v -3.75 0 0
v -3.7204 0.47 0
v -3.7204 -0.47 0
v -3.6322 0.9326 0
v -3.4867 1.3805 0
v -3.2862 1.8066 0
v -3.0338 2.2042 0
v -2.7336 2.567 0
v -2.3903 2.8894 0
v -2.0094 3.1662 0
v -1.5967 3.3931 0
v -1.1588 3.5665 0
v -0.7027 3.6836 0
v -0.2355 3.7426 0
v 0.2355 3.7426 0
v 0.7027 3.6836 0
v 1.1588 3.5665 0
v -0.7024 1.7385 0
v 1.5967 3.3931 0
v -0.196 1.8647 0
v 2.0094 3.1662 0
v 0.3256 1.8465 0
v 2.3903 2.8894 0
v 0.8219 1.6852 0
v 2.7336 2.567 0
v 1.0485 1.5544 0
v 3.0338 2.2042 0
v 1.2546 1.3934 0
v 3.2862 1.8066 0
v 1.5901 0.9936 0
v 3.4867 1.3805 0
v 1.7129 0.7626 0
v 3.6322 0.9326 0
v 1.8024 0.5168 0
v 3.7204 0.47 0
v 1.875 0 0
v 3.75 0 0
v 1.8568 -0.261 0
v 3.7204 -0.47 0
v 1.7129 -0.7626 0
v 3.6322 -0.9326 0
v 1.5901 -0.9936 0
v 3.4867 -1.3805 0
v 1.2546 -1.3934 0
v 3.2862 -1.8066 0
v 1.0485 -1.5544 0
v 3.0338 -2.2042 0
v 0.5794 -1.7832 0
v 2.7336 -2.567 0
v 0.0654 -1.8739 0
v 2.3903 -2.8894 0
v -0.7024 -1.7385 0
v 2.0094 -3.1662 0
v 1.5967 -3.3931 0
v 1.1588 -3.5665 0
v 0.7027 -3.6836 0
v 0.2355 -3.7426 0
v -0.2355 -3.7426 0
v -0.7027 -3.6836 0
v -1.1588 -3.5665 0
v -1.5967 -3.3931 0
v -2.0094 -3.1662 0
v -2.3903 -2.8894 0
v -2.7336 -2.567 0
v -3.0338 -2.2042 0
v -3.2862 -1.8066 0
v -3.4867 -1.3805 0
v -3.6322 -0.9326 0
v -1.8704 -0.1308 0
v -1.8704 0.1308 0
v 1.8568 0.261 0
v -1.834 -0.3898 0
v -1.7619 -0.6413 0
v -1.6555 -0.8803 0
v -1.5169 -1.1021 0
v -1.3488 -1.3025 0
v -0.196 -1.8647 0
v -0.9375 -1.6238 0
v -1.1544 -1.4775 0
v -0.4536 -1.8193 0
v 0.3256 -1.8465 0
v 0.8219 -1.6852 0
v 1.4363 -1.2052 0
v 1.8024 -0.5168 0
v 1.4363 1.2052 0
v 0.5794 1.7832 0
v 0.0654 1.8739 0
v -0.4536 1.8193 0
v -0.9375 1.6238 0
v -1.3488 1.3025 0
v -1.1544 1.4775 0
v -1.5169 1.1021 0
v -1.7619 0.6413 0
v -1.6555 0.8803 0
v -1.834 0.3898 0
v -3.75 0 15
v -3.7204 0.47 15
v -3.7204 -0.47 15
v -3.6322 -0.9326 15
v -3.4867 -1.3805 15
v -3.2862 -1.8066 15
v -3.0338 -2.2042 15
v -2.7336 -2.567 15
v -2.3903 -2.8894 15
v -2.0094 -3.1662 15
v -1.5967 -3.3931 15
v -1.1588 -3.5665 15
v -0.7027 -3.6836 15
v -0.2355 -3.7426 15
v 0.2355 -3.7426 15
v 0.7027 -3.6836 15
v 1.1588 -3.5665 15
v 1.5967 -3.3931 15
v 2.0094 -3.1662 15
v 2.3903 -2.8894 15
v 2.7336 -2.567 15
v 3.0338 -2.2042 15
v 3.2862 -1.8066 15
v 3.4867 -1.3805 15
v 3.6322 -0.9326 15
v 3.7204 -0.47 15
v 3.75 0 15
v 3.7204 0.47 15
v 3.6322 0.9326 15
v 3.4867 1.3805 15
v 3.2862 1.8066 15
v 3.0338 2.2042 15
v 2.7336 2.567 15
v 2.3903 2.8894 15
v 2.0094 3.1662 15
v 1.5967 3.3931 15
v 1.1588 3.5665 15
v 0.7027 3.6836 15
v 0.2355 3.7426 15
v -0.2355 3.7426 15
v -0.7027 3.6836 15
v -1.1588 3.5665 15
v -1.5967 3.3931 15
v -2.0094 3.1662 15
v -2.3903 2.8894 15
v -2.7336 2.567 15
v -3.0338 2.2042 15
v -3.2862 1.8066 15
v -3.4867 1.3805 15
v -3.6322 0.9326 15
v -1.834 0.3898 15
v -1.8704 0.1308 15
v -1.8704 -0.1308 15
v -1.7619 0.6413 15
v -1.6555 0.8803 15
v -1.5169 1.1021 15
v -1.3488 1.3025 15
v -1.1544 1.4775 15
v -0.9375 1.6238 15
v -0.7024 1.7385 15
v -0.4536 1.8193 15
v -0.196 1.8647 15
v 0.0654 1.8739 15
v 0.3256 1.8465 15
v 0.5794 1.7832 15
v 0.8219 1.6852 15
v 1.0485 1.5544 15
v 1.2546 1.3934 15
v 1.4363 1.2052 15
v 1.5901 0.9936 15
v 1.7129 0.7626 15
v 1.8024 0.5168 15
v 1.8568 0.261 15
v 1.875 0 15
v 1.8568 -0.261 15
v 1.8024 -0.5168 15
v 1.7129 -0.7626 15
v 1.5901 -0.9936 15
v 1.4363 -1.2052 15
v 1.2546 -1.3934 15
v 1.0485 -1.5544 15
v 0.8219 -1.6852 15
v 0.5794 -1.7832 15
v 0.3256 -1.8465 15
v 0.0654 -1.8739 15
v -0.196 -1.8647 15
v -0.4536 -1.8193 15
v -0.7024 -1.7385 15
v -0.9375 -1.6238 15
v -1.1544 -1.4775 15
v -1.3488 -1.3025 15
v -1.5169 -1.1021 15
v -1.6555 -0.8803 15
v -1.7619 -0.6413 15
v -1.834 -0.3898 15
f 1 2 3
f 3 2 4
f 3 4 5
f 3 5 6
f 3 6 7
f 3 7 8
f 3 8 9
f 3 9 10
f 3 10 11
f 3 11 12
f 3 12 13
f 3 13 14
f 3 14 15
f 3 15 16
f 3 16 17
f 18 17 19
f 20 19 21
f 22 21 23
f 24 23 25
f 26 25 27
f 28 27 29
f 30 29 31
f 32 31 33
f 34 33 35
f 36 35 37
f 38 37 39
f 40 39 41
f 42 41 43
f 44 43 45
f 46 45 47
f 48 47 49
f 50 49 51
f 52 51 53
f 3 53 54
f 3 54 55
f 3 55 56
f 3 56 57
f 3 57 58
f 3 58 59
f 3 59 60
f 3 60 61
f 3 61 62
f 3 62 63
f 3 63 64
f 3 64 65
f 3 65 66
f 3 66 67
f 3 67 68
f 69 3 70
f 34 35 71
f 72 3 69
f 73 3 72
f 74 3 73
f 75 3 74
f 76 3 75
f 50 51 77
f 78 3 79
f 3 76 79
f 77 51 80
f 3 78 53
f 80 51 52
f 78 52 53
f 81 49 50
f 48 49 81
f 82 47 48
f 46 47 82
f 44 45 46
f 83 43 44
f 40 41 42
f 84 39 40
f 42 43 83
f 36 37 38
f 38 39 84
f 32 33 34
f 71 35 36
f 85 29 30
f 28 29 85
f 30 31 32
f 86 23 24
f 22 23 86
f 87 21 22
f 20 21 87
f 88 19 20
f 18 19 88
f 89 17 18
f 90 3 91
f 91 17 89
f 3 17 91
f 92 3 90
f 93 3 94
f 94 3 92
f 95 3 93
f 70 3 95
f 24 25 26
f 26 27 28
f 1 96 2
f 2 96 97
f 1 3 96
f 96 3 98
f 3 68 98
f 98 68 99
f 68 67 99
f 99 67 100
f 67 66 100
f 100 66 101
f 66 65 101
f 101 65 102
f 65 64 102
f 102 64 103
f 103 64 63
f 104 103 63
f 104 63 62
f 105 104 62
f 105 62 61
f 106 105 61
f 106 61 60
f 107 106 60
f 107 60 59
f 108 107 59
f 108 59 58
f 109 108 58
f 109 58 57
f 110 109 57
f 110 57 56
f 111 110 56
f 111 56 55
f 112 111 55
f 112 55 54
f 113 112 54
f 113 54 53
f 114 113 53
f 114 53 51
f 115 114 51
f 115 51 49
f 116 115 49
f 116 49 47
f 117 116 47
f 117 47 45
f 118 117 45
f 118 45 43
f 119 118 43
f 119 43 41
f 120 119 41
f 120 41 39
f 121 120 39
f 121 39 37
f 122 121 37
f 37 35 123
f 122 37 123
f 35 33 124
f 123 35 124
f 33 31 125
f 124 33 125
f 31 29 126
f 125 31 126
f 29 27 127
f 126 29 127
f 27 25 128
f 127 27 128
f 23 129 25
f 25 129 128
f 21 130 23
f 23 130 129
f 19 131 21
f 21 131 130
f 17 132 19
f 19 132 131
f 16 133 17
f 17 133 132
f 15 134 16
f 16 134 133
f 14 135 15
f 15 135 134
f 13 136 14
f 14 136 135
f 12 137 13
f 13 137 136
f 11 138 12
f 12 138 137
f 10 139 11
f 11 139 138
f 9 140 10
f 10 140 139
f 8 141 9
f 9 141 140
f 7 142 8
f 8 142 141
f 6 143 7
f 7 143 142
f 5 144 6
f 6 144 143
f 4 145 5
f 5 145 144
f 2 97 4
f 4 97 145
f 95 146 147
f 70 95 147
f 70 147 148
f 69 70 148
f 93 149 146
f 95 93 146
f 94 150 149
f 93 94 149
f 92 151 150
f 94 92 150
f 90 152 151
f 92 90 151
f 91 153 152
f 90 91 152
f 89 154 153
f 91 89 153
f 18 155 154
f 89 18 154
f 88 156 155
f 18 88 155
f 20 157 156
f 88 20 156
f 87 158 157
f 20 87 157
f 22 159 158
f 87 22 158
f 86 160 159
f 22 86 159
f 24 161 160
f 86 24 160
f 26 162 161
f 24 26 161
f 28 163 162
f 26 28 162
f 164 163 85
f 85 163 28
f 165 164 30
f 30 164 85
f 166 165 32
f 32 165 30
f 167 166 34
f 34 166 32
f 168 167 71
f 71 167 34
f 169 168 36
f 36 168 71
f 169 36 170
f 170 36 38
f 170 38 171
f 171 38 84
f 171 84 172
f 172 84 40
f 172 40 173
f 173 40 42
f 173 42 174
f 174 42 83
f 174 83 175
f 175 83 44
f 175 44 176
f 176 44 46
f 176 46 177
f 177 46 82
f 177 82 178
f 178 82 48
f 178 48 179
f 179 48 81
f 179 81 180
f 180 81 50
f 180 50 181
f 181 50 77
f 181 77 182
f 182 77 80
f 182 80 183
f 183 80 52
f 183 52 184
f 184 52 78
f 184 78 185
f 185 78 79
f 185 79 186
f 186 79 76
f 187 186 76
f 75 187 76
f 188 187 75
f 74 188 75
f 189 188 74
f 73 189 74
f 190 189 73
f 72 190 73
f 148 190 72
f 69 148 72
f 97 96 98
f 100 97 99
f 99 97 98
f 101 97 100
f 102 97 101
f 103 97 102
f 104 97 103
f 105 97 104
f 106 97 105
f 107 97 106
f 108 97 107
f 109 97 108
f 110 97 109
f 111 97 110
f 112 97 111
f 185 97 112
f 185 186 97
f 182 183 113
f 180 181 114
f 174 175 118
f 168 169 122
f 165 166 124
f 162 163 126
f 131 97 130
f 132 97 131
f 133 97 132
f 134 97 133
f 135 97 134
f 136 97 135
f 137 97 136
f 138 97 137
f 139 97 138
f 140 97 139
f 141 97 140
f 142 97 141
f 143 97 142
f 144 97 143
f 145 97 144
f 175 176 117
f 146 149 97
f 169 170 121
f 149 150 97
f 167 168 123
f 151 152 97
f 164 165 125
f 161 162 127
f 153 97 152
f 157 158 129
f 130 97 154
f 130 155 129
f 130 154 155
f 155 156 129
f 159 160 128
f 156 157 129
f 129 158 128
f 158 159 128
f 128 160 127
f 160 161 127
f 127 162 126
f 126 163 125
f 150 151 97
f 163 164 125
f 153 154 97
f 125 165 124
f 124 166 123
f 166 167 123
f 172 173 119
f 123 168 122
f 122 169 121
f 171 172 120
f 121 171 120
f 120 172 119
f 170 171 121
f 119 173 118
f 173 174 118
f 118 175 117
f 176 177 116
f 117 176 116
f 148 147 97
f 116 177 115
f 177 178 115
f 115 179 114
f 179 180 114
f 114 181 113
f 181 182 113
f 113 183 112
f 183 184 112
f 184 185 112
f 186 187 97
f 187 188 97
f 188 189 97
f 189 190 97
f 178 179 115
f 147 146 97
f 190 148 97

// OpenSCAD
//lenght of the bead
beadlen=15;
//  the pearl's radius
beadrad=beadlen/4;
// the radius of the hole
hole=beadrad/2;



//making the bead
bead();




//makes the bead module. 
module bead() {
  difference() {
      cylinder(beadlen, beadrad, beadrad ,$fn=50  );
      cylinder(2*beadlen+2, hole, hole, center=true, $fn=45 );
  }
}
